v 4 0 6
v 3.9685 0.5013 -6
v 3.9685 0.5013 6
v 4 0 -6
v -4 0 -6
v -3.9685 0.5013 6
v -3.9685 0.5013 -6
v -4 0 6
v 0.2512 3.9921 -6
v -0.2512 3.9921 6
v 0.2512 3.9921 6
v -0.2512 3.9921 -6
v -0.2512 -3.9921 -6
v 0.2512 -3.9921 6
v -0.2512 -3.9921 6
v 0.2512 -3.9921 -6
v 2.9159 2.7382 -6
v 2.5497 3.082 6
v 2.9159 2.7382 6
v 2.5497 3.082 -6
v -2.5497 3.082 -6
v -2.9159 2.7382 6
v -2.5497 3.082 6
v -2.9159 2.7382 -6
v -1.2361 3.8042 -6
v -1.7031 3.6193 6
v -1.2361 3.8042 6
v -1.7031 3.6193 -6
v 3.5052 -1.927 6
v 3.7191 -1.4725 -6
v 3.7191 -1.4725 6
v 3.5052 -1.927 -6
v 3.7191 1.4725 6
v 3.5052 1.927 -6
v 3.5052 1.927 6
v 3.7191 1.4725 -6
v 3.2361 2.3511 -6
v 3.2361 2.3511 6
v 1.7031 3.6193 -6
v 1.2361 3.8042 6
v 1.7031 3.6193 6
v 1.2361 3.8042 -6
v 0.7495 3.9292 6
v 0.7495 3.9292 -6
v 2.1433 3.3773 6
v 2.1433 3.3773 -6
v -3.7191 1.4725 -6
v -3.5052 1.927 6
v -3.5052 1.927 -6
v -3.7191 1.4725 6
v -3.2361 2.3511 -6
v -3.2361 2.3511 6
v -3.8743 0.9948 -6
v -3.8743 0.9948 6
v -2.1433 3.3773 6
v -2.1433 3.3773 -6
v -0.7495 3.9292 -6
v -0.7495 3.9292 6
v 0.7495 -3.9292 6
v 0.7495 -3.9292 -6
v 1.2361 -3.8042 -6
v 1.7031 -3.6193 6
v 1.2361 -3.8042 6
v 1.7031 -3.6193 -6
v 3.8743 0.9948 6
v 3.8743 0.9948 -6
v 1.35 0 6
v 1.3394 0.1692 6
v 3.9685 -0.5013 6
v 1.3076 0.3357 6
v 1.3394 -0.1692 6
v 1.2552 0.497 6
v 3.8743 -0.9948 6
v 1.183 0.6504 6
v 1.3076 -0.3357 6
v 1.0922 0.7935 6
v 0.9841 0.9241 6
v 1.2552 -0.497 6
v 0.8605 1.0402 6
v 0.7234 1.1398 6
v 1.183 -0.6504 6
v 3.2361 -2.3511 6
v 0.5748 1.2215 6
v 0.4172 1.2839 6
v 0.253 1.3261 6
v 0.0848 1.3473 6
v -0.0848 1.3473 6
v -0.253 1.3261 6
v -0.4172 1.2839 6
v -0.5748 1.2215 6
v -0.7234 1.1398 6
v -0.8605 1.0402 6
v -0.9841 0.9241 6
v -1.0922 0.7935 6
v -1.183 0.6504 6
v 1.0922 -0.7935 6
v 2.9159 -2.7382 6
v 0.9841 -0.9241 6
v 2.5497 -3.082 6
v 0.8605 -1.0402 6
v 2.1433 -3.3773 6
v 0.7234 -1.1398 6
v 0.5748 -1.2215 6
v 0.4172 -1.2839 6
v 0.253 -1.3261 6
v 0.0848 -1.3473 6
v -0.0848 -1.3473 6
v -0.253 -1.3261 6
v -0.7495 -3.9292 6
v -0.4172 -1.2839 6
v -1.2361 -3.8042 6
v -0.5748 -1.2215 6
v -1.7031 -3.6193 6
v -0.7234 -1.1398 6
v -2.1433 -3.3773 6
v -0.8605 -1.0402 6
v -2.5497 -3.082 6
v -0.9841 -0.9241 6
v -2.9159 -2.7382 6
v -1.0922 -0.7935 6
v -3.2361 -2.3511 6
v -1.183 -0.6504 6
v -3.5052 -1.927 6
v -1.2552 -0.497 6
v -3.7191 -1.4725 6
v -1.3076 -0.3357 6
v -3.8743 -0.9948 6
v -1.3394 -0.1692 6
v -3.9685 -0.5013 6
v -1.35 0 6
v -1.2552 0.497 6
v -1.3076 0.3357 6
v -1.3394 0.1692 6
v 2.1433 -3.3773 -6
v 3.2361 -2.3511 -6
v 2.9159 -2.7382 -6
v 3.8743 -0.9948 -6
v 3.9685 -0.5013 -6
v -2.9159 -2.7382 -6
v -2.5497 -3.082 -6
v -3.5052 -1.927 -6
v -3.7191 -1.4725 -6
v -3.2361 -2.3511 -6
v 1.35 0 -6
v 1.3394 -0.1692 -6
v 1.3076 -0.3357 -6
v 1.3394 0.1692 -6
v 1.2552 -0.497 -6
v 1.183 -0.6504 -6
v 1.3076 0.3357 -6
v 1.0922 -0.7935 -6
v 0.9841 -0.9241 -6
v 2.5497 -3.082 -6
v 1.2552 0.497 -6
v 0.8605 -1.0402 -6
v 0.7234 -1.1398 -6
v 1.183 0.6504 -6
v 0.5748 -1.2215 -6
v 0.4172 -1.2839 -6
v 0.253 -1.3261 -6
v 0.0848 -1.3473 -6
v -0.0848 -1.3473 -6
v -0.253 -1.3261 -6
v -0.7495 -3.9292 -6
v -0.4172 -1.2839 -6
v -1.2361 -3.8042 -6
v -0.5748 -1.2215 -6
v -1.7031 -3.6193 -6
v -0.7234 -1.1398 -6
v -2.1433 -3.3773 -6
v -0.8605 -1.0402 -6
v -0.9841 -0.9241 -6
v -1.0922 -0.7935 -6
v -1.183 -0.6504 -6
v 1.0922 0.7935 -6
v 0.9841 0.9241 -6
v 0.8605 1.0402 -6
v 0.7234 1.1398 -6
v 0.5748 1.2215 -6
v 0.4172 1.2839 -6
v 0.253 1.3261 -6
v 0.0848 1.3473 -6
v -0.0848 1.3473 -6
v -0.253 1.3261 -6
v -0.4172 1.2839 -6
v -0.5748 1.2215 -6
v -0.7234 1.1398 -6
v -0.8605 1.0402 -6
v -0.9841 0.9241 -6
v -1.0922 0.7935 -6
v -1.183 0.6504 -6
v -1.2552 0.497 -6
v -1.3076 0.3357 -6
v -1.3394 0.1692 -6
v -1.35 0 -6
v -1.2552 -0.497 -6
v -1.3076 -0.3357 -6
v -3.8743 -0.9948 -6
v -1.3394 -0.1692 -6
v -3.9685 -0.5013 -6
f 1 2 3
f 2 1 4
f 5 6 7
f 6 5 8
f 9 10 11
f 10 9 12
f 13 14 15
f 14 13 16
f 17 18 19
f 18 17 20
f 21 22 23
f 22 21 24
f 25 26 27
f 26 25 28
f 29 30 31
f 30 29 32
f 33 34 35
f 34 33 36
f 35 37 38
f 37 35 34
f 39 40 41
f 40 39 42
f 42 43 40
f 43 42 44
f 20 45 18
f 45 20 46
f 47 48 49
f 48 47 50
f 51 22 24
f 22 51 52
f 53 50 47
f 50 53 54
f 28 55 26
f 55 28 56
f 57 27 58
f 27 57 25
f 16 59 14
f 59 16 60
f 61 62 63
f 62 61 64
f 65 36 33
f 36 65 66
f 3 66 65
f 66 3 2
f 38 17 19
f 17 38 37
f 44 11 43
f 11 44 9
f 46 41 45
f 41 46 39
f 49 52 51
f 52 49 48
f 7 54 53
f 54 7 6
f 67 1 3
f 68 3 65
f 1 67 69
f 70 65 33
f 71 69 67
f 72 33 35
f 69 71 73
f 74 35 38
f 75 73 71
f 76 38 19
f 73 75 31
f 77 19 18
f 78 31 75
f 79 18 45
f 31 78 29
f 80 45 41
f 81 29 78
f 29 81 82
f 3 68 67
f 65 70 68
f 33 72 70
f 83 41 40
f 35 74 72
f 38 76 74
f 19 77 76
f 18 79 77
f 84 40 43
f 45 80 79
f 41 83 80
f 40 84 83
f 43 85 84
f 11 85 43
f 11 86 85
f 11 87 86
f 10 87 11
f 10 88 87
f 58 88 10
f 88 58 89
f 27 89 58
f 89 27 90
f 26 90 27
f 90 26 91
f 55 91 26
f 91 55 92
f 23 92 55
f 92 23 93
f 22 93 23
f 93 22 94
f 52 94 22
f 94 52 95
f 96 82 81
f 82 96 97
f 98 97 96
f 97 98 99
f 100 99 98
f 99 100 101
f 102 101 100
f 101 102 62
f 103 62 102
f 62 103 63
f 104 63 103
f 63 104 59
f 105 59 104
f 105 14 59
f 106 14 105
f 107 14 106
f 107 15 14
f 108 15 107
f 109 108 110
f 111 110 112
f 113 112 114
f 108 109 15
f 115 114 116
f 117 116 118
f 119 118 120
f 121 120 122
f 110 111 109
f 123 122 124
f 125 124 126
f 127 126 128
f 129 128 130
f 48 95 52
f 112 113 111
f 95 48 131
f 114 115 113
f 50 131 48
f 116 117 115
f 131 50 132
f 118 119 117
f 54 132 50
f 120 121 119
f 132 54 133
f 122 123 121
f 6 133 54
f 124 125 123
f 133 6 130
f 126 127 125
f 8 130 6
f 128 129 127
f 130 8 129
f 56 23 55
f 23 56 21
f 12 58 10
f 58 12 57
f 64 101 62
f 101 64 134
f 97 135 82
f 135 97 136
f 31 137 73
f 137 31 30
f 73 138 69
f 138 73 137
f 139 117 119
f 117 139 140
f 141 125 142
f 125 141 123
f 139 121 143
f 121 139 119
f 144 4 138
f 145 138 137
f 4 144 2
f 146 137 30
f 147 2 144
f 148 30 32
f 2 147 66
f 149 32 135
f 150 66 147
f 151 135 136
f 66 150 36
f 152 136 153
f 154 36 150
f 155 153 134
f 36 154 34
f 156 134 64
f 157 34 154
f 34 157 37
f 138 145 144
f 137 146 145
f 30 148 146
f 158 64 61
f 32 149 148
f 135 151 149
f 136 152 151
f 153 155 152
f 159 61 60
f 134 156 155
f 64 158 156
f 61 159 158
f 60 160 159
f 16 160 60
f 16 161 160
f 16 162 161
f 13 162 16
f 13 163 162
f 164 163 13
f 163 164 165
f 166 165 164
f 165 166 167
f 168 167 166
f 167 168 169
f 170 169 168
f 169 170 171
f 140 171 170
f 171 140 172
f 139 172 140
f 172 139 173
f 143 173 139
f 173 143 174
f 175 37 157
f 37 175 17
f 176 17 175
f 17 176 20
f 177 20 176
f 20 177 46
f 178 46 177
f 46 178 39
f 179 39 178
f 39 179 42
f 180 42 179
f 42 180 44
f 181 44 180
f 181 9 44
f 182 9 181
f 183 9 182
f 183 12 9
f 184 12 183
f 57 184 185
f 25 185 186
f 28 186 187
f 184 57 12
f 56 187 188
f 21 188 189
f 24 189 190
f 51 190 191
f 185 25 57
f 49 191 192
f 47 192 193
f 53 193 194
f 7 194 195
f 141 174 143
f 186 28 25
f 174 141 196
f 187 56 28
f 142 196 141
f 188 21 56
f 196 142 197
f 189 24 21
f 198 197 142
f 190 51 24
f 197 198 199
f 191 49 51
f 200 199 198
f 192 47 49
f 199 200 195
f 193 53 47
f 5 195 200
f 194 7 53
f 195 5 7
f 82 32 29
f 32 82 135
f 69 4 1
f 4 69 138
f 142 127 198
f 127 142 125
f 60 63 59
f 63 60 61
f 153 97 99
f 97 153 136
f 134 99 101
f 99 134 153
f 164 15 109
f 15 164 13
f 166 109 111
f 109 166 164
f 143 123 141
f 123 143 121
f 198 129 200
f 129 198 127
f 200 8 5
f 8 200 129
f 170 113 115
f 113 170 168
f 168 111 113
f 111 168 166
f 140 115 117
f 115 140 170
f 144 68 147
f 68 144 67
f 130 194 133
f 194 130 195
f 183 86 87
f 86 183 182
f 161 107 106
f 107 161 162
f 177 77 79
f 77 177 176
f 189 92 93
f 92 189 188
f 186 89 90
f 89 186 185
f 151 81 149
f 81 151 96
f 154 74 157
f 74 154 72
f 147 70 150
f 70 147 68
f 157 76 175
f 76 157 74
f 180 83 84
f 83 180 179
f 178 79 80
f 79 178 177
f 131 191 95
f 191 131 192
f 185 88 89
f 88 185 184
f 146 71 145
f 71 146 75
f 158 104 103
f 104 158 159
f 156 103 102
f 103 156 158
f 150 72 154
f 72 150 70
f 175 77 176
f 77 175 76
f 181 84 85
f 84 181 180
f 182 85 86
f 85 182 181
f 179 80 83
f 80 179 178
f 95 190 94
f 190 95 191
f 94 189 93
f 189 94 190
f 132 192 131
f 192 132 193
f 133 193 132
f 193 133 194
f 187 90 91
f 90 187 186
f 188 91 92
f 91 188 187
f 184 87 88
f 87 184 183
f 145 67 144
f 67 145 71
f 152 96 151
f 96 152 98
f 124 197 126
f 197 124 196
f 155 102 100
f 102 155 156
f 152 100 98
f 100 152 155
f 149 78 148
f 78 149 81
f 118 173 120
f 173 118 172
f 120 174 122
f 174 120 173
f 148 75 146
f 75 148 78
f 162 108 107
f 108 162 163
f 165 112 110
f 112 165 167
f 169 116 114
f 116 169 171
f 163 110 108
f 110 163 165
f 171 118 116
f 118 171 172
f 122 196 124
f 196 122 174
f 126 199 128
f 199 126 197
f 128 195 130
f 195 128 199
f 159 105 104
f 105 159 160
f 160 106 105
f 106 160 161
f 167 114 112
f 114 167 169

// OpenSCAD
$fn = 50;


difference() {
	union() {
		translate(v = [0, 0, -6.0000000000]) {
			cylinder(h = 12, r = 4.0000000000);
		}
	}
	union() {
		translate(v = [0, 0, -100.0000000000]) {
			cylinder(h = 200, r = 1.3500000000);
		}
	}
}
